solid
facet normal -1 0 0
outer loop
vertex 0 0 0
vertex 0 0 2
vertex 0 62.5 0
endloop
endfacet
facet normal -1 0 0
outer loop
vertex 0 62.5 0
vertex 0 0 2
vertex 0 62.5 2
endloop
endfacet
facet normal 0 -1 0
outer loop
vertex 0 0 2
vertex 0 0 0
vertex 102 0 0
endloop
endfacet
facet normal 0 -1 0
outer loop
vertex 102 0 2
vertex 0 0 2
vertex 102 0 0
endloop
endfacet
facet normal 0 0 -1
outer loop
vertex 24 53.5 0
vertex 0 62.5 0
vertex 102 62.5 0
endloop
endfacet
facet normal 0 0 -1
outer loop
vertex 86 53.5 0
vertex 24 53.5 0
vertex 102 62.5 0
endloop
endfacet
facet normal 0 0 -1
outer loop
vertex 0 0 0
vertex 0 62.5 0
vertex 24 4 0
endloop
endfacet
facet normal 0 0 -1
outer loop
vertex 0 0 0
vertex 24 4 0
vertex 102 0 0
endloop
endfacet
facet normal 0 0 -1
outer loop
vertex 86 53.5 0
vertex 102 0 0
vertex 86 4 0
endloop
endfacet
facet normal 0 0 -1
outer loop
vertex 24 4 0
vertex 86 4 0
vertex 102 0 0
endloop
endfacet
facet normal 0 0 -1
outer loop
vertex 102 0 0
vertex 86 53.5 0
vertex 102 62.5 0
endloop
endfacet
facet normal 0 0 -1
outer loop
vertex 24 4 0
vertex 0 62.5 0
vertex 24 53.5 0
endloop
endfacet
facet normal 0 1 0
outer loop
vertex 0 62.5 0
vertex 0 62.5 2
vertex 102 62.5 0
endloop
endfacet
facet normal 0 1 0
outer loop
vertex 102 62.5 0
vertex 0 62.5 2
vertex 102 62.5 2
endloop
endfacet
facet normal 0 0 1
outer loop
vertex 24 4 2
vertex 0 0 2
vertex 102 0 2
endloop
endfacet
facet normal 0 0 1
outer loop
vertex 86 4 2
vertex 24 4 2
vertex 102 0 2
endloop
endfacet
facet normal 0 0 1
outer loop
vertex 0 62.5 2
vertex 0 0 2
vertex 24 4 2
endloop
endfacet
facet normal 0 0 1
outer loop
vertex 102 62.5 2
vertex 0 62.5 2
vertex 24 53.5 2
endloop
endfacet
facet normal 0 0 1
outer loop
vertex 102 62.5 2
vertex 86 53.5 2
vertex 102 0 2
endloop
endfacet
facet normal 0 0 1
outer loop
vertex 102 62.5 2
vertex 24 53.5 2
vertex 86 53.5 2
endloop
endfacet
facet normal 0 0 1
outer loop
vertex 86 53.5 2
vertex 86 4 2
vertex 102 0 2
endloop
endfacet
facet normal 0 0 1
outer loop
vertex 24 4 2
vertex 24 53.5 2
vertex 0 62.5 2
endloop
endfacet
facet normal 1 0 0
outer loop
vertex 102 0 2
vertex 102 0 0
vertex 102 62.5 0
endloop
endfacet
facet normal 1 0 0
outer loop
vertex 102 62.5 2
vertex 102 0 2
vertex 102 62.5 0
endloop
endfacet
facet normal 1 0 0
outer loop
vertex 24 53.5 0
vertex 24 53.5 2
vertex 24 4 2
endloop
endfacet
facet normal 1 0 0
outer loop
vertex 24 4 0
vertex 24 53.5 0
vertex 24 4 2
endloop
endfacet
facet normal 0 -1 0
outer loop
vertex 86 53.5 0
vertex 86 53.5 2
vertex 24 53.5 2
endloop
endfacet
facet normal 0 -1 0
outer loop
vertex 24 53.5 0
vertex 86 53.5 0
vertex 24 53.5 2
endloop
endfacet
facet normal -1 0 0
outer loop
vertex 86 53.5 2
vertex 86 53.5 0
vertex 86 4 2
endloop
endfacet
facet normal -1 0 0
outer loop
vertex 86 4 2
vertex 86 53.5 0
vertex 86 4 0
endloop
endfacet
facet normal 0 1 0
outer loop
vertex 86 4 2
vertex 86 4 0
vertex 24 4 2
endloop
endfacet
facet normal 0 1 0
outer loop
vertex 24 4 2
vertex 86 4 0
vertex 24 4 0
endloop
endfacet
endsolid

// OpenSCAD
//
// Thermal imaging camera front (LCD Bezel)
//

difference() {
  // Bezel
  cube([102, 62.5, 2]);

  // LCD cut-out
  translate([24, 4, -1]) {
    cube([62, 49.5, 4]);
  }
}
